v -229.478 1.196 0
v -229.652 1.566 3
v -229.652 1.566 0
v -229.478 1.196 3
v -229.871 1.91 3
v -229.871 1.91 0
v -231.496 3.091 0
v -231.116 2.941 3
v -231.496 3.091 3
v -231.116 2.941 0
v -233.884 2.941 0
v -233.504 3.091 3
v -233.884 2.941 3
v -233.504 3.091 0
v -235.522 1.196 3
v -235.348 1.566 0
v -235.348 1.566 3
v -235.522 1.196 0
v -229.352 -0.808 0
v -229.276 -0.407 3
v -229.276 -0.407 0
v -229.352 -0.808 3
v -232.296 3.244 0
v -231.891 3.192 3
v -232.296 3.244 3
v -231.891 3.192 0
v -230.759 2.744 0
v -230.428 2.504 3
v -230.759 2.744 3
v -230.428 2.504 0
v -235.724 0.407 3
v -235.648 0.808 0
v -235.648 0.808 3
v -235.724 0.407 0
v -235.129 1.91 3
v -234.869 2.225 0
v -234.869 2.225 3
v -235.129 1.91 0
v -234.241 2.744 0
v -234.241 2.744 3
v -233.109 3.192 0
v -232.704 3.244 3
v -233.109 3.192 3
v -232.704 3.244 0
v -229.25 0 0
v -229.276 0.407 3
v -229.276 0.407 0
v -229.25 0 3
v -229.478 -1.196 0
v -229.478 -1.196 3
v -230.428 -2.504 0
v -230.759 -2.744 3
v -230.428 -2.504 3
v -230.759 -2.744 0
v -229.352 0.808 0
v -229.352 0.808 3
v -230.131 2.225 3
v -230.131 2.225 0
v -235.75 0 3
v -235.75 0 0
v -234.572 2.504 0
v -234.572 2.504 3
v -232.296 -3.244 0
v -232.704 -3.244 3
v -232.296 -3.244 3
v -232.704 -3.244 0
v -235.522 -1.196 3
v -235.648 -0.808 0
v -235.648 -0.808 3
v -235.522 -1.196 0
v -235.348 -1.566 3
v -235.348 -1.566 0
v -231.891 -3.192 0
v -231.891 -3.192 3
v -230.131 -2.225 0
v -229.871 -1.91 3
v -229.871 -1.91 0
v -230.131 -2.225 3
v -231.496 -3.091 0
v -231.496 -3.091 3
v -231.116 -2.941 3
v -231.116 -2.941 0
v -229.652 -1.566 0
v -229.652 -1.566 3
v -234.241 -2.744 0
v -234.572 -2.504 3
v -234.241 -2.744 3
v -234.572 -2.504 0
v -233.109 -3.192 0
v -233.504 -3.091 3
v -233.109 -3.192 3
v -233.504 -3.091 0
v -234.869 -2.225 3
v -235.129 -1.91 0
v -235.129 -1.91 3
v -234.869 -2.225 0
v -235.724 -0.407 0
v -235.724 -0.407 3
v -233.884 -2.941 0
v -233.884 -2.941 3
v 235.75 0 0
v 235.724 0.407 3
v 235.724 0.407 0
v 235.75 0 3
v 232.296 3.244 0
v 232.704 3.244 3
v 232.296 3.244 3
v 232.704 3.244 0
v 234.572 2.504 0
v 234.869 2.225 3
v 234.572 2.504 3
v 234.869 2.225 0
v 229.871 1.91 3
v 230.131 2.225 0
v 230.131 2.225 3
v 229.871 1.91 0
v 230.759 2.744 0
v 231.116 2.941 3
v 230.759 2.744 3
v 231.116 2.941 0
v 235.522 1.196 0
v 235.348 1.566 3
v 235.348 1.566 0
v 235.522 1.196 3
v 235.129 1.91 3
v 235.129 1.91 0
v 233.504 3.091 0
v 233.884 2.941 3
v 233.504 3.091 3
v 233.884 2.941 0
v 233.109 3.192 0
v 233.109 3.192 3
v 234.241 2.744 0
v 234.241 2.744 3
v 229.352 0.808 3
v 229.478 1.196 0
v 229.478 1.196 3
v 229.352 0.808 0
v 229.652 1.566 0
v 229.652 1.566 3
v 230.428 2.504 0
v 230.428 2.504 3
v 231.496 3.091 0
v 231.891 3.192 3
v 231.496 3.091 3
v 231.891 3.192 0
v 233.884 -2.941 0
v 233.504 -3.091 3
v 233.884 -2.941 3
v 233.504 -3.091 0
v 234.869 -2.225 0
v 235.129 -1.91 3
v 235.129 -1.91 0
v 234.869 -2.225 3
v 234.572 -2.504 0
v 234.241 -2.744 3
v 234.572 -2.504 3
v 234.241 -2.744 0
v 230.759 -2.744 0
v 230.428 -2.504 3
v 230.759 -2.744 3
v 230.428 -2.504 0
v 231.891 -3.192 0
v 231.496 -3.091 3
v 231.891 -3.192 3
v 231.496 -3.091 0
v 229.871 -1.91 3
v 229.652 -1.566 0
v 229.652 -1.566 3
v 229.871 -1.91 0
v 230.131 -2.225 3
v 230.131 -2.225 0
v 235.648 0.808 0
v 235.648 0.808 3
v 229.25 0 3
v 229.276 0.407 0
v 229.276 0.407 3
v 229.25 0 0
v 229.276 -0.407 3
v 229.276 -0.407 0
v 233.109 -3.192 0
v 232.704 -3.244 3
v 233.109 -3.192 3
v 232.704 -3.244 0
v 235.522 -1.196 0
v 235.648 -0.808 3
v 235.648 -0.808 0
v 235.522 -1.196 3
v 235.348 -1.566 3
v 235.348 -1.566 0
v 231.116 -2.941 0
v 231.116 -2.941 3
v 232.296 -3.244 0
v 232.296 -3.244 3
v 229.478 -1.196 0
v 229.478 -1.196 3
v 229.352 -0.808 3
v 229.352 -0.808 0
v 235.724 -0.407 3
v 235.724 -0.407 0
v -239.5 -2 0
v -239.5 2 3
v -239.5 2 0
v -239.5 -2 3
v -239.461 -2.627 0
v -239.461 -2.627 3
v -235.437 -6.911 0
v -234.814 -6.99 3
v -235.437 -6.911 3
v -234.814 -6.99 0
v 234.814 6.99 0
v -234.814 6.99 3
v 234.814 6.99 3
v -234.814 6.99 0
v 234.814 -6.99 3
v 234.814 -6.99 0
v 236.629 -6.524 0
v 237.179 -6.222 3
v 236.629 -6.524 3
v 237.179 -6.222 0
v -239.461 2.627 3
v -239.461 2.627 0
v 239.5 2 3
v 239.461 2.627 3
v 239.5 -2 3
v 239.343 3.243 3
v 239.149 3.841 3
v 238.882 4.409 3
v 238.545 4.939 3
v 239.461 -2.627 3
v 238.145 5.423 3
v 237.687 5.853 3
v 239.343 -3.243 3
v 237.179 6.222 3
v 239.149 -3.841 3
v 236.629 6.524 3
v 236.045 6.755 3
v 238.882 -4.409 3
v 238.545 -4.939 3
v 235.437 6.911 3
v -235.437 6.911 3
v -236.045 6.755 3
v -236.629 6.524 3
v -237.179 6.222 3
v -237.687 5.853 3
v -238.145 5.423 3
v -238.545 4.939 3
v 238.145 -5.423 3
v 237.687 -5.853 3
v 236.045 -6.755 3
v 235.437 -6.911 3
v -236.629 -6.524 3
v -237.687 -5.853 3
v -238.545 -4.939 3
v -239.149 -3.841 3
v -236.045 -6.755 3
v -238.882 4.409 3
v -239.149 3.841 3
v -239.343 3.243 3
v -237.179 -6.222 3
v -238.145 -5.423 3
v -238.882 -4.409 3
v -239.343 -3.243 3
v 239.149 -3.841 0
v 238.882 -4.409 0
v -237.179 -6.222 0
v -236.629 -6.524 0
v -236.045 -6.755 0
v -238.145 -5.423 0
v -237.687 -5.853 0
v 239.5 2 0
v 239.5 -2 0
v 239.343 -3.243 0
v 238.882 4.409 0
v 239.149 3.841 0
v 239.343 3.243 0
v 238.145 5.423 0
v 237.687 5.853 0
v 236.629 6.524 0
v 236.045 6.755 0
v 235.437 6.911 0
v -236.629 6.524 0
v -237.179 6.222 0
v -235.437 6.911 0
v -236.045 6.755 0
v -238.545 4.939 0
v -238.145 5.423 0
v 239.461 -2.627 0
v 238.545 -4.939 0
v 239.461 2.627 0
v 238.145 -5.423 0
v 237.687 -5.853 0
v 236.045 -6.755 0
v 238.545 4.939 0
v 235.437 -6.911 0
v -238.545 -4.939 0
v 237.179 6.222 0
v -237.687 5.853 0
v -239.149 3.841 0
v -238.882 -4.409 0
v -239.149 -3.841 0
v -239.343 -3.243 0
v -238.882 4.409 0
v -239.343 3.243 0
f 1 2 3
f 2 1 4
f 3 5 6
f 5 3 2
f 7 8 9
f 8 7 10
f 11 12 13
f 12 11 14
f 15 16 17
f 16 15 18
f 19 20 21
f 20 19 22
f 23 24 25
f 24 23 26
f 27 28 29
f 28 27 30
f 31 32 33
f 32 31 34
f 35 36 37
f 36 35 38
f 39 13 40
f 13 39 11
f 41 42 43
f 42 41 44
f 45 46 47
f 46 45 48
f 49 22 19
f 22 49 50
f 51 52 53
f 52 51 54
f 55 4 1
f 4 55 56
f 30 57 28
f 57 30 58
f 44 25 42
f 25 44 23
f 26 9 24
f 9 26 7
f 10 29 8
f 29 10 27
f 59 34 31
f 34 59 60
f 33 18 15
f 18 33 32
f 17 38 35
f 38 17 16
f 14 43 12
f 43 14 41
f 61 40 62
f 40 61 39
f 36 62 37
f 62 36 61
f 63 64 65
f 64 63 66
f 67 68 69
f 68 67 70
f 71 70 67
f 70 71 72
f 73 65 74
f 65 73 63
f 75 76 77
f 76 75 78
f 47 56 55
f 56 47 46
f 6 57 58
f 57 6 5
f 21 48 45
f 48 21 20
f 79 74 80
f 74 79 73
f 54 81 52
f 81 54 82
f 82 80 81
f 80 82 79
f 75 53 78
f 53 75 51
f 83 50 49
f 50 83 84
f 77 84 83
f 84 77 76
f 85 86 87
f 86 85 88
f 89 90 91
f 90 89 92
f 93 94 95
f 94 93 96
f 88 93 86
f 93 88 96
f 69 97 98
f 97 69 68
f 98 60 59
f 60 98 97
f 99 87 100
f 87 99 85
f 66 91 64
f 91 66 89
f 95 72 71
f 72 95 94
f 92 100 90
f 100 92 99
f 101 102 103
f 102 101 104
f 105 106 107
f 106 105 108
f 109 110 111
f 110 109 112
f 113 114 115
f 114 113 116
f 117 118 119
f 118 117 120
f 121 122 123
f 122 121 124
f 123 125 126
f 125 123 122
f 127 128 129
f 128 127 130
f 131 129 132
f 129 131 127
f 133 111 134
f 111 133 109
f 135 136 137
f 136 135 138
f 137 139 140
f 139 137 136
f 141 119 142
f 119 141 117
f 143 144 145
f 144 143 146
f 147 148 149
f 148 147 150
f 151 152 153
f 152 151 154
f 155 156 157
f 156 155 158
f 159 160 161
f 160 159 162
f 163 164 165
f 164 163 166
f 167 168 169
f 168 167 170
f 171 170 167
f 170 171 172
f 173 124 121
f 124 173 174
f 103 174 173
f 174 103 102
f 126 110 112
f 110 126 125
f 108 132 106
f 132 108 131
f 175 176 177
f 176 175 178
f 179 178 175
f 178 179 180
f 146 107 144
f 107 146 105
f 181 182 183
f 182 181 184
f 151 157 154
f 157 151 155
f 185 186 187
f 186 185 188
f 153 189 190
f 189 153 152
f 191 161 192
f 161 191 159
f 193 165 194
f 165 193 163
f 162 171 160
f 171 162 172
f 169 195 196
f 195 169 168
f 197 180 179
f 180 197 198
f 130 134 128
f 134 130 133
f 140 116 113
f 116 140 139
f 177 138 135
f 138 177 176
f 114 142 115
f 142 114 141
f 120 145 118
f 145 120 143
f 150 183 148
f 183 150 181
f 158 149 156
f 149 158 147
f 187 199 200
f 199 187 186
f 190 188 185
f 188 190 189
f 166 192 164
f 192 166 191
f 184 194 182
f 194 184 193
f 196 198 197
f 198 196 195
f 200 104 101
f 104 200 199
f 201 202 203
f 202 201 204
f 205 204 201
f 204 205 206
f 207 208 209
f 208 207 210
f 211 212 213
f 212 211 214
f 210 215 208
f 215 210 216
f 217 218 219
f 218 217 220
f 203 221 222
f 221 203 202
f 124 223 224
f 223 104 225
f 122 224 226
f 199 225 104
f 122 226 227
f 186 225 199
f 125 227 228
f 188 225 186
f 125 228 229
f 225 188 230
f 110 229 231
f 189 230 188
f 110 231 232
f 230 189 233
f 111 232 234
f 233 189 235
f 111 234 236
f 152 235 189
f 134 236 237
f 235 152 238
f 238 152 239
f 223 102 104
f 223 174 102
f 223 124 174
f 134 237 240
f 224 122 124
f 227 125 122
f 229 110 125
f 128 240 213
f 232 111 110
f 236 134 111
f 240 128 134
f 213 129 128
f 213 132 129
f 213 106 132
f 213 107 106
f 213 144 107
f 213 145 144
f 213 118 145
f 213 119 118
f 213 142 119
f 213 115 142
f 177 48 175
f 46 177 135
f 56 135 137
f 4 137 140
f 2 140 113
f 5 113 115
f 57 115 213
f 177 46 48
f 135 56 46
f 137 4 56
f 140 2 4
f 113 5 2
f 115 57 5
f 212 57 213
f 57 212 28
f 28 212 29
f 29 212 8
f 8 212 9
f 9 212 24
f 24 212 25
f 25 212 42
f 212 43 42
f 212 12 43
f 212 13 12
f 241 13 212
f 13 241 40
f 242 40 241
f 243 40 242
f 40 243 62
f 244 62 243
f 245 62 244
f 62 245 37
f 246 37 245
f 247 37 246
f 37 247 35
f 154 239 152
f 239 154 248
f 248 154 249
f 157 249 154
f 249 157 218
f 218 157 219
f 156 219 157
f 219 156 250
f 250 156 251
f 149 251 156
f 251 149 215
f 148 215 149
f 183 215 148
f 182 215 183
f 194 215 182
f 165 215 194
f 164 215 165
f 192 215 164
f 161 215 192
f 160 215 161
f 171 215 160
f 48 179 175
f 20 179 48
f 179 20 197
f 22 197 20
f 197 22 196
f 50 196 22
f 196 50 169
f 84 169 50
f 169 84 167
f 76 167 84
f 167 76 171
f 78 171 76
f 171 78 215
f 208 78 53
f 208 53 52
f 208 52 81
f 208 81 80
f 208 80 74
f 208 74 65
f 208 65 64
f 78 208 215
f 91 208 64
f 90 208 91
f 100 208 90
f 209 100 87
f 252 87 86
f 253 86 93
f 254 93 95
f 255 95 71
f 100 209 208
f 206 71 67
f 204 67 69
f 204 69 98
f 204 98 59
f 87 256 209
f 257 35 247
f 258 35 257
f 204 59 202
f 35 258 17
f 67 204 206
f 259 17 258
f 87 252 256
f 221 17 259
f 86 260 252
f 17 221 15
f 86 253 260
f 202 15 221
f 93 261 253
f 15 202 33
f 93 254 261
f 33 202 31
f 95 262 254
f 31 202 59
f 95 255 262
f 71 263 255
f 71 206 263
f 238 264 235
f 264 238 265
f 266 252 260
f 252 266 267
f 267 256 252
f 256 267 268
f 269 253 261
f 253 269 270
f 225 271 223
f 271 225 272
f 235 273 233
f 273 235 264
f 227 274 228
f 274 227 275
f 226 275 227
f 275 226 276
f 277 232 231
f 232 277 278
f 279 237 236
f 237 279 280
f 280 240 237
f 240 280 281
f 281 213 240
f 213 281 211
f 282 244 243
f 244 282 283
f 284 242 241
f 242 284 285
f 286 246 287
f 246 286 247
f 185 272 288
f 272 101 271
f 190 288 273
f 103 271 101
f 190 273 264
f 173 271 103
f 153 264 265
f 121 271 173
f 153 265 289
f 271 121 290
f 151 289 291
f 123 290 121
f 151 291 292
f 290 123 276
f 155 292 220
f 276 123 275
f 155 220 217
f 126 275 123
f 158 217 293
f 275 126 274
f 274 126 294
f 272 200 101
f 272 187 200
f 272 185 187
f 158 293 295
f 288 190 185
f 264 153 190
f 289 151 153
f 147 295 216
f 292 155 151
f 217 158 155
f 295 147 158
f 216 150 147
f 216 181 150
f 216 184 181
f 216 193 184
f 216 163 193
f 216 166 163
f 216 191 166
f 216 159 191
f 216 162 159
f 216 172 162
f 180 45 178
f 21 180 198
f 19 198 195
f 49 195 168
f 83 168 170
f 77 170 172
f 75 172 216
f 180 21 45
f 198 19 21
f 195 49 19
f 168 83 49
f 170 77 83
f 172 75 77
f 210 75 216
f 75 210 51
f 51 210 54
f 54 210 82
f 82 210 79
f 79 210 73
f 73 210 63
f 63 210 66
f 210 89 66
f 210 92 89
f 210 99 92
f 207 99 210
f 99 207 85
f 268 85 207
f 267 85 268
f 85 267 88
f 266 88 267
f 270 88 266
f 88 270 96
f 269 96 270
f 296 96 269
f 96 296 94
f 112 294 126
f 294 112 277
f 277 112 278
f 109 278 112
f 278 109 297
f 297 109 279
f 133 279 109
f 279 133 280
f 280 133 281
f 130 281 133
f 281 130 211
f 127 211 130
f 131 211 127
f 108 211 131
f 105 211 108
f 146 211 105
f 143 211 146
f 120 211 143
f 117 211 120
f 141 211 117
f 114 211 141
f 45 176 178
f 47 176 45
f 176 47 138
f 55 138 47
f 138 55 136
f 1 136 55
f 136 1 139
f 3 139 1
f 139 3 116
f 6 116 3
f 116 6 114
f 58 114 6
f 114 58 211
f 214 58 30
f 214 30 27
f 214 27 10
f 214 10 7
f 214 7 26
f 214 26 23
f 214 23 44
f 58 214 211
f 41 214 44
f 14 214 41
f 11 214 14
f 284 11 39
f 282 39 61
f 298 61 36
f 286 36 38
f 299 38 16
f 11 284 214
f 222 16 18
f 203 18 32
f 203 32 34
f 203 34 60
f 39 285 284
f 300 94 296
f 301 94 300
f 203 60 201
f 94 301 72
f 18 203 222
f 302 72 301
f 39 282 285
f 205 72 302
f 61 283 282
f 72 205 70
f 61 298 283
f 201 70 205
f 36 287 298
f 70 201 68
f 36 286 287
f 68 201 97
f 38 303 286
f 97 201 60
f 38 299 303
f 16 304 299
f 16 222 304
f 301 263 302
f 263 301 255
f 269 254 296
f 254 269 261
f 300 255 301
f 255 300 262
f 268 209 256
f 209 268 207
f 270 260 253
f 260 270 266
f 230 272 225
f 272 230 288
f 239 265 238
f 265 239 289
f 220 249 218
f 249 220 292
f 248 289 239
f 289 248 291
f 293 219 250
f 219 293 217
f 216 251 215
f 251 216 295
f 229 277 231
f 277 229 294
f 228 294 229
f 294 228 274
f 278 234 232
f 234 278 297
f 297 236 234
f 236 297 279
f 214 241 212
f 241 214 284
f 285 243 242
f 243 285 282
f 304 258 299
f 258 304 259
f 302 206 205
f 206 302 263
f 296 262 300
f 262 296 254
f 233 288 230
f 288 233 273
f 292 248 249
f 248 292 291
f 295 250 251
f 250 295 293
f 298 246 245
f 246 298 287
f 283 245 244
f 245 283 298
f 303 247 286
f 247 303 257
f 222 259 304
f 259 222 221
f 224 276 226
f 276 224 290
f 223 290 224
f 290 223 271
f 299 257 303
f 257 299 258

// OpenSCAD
$fn = 50;


difference() {
	union() {
		hull() {
			translate(v = [-234.5000000000, 2.0000000000, 0]) {
				cylinder(h = 3, r = 5);
			}
			translate(v = [234.5000000000, 2.0000000000, 0]) {
				cylinder(h = 3, r = 5);
			}
			translate(v = [-234.5000000000, -2.0000000000, 0]) {
				cylinder(h = 3, r = 5);
			}
			translate(v = [234.5000000000, -2.0000000000, 0]) {
				cylinder(h = 3, r = 5);
			}
		}
	}
	union() {
		translate(v = [-232.5000000000, 0.0000000000, -100.0000000000]) {
			cylinder(h = 200, r = 3.2500000000);
		}
		translate(v = [-232.5000000000, 0.0000000000, -100.0000000000]) {
			cylinder(h = 200, r = 3.2500000000);
		}
		translate(v = [232.5000000000, 0.0000000000, -100.0000000000]) {
			cylinder(h = 200, r = 3.2500000000);
		}
		translate(v = [232.5000000000, 0.0000000000, -100.0000000000]) {
			cylinder(h = 200, r = 3.2500000000);
		}
	}
}
